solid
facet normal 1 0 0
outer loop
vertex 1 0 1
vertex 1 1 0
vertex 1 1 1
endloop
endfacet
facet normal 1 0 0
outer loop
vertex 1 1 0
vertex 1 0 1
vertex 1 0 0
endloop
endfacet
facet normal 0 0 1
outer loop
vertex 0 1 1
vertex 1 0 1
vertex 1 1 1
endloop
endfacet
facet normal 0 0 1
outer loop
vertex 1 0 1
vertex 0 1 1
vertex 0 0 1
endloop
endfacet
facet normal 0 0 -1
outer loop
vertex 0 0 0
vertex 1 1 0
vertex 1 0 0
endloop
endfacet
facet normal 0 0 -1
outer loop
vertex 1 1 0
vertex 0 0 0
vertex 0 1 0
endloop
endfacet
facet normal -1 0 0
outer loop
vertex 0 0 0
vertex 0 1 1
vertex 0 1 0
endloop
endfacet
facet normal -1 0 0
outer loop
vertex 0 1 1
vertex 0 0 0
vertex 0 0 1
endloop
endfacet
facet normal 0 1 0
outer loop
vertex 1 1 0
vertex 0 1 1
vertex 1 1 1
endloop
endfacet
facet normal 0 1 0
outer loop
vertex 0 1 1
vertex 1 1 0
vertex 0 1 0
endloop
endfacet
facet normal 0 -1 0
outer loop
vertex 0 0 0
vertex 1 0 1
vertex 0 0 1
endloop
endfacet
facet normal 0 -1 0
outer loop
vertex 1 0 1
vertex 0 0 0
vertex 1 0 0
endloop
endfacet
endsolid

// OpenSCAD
module chamfered_cube(size, chamfer_radius) {
  difference() {
    cube([size, size, size]);
    translate([chamfer_radius, chamfer_radius, chamfer_radius])
      cube([size - 2 * chamfer_radius, size - 2 * chamfer_radius, size - 2 * chamfer_radius]);
  }
}

chamfered_cube([20, 20, 20], 2);
